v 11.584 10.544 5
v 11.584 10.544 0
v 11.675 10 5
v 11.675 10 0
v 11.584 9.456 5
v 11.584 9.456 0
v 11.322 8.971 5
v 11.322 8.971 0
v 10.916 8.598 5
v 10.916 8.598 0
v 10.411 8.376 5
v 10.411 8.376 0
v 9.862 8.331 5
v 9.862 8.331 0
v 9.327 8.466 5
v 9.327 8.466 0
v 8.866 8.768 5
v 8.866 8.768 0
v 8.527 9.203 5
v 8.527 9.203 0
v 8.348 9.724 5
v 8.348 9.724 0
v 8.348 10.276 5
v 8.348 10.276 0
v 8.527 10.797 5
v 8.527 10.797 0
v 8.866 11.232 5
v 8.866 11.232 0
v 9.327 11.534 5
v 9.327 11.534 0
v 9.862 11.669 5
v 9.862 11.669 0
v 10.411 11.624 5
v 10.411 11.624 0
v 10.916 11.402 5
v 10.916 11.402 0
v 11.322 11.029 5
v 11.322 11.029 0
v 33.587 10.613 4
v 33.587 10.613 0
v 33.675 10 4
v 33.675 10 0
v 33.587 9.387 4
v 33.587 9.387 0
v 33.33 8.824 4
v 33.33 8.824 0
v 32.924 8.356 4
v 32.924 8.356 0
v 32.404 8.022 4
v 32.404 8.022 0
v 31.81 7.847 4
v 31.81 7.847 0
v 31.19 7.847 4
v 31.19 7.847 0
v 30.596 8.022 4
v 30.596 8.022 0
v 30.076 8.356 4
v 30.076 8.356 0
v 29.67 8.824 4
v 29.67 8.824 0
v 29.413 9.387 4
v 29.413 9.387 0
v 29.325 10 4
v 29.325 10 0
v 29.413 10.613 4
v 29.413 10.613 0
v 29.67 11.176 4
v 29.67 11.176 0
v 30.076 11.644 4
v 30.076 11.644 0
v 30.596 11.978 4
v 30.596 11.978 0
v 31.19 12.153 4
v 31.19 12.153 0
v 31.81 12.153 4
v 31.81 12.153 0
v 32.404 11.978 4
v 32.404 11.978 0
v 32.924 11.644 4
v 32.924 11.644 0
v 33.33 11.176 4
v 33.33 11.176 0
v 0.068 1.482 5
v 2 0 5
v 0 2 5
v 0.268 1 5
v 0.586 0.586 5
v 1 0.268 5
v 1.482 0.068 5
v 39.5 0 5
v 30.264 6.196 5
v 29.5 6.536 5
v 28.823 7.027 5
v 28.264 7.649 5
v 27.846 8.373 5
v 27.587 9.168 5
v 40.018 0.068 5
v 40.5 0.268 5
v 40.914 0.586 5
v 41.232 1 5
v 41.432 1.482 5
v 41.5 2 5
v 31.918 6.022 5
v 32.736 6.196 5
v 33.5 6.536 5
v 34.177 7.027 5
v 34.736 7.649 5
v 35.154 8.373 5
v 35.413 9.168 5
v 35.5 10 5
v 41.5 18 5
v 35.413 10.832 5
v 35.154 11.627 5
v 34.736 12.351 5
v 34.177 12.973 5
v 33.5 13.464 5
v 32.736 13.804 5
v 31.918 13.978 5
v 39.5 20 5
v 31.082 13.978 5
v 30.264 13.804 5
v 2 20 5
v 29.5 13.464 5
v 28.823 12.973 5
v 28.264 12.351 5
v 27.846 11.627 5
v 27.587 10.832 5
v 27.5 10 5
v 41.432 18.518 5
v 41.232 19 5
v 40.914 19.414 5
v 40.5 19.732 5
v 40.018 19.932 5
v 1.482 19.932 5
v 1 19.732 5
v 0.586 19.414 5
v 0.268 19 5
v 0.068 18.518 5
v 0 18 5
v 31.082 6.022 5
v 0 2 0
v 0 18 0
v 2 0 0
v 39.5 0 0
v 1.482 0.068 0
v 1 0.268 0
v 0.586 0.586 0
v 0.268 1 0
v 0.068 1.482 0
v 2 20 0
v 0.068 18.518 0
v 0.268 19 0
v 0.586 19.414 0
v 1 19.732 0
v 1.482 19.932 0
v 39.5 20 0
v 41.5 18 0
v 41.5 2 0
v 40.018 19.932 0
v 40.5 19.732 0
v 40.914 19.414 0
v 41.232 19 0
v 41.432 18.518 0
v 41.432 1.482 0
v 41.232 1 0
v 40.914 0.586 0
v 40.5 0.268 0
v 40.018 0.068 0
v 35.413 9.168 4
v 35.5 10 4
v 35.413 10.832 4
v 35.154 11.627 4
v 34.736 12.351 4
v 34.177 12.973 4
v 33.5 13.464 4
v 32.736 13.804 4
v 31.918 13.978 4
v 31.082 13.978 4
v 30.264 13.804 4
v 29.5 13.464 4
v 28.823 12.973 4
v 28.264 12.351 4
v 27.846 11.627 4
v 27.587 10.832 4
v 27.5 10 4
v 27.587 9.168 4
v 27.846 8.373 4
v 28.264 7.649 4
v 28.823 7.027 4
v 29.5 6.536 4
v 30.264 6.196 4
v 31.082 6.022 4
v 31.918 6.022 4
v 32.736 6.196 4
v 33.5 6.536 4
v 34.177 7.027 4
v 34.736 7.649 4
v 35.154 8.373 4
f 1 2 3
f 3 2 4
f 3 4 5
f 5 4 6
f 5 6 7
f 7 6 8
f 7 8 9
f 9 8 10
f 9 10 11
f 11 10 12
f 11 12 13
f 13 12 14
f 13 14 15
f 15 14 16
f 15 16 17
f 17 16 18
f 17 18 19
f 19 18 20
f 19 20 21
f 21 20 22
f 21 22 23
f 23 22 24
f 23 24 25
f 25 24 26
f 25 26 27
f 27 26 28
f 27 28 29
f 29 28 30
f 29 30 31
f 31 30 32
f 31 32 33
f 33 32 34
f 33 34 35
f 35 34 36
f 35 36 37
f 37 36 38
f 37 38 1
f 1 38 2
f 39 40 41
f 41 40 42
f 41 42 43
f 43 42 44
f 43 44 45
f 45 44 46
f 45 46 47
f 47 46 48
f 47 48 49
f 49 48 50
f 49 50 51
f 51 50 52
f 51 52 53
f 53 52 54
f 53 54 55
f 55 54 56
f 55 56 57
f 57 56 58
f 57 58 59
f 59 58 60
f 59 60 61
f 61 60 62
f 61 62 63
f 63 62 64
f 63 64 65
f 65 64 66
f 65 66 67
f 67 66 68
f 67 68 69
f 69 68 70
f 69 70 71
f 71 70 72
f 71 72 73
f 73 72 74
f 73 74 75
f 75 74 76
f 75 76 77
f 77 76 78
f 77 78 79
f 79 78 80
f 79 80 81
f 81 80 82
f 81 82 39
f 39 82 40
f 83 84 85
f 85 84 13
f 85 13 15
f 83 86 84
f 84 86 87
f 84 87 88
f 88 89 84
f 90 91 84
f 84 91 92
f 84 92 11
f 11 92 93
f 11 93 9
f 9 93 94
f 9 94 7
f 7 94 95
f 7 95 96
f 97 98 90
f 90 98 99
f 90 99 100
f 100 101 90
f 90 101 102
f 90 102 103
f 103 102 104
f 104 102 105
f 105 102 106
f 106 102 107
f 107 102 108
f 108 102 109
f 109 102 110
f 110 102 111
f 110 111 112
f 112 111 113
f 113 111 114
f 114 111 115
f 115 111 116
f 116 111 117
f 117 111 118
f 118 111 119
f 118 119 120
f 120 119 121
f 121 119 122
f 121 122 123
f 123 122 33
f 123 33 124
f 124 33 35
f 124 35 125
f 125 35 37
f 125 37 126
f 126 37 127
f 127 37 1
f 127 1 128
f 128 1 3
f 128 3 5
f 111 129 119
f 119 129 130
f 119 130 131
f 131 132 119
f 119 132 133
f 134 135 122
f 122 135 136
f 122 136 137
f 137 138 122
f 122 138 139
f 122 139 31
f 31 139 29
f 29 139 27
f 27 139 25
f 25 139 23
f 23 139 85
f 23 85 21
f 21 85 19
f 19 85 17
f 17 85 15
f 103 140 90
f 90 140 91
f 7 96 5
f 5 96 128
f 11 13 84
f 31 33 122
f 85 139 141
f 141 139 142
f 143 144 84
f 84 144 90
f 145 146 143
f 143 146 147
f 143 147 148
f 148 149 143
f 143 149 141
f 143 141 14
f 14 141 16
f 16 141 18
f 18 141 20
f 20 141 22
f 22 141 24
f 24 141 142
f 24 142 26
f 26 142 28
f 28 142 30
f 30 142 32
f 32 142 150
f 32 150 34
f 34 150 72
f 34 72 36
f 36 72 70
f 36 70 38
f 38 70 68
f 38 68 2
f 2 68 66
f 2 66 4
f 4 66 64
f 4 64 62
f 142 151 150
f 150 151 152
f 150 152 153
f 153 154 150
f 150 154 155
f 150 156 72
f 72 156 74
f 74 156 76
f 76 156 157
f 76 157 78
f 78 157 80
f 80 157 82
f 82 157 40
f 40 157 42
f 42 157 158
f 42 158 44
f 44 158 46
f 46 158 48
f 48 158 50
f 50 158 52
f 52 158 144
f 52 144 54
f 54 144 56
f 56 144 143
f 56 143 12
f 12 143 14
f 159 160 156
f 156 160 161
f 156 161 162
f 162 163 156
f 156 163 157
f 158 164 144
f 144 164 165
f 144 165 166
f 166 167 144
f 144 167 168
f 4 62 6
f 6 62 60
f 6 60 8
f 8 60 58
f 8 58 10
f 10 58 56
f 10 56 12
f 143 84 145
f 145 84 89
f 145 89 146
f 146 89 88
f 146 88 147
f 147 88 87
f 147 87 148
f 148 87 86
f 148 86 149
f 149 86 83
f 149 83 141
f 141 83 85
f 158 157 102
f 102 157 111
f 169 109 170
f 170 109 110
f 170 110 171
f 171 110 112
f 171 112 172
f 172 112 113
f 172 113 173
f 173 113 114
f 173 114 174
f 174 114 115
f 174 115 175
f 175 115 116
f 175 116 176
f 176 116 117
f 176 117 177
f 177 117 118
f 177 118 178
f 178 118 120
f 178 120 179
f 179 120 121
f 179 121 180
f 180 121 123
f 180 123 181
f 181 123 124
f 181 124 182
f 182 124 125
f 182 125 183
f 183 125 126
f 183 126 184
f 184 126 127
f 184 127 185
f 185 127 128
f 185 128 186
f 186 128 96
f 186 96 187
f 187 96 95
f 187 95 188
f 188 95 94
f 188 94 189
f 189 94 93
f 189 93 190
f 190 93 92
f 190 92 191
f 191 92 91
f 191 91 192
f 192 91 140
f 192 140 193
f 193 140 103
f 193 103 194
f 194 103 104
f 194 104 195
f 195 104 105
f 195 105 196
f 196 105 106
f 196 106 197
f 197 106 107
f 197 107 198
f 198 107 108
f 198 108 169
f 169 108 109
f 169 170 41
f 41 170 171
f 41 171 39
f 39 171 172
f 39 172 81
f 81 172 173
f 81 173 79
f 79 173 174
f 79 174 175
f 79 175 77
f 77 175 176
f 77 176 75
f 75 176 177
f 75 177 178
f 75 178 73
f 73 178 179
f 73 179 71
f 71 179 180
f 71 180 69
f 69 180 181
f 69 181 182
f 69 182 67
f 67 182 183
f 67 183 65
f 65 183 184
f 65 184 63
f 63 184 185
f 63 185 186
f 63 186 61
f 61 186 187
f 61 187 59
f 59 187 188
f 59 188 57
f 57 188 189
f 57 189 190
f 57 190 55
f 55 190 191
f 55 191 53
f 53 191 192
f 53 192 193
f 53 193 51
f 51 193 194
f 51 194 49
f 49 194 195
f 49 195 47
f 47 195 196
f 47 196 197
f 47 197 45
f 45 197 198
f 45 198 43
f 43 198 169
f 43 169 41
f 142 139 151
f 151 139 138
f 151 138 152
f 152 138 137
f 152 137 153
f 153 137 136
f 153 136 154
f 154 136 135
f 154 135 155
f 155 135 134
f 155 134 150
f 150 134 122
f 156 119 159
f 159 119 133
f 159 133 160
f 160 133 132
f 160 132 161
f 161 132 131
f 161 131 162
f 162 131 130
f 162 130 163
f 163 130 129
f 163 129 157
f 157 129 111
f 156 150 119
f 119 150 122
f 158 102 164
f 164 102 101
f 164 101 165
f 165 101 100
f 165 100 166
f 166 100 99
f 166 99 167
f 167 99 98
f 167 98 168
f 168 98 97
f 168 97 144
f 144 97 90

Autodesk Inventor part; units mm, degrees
ref_plane "YZ Plane" through (0, 0, 0) normal (1, 0, 0) x (0, 1, 0)
ref_plane "XZ Plane" through (0, 0, 0) normal (0, 1, 0) x (-1, 0, 0)
ref_plane "XY Plane" through (0, 0, 0) normal (0, 0, 1) x (1, 0, 0)
sketch "Sketch1" plane through (0, 0, 0) normal (0, 0, 1) x (1, 0, 0)
  line L0 (0, 0) -> (41.5, 0)
  line L1 (41.5, 0) -> (41.5, 20)
  line L2 (41.5, 20) -> (0, 20)
  line L3 (0, 20) -> (0, 0)
  circle A0 centre (31.5, 10) radius 2.175
  circle A1 centre (10, 10) radius 1.675
  line L4 (20, 20) -> (20, 0) construction
  point P0 (41.5, 10)
  dimension "d0" = 41.5
  dimension "d1" = 4.35
  dimension "d2" = 3.35
  dimension "d3" = 20
  dimension "d4" = 10
  dimension "d5" = 10
  dimension "d6" = 11.5
extrude "Extrusion1" add sketch "Sketch1" along normal blind 5
sketch "Sketch2" plane through (0, 0, 5) normal (0, 0, 1) x (1, 0, 0)
  circle A0 centre (31.5, 10) radius 2.175 projected
  circle A1 centre (31.5, 10) radius 4
  point P0 (0, 0)
  dimension "d9" = 8
extrude "Extrusion2" cut sketch "Sketch2" against normal blind 1
fillet "Fillet1" radius 2 4 edges at (0, 20, 2.5) (41.5, 20, 2.5) (41.5, 0, 2.5) (0, 0, 2.5)
properties part number "PSU_bracket"
